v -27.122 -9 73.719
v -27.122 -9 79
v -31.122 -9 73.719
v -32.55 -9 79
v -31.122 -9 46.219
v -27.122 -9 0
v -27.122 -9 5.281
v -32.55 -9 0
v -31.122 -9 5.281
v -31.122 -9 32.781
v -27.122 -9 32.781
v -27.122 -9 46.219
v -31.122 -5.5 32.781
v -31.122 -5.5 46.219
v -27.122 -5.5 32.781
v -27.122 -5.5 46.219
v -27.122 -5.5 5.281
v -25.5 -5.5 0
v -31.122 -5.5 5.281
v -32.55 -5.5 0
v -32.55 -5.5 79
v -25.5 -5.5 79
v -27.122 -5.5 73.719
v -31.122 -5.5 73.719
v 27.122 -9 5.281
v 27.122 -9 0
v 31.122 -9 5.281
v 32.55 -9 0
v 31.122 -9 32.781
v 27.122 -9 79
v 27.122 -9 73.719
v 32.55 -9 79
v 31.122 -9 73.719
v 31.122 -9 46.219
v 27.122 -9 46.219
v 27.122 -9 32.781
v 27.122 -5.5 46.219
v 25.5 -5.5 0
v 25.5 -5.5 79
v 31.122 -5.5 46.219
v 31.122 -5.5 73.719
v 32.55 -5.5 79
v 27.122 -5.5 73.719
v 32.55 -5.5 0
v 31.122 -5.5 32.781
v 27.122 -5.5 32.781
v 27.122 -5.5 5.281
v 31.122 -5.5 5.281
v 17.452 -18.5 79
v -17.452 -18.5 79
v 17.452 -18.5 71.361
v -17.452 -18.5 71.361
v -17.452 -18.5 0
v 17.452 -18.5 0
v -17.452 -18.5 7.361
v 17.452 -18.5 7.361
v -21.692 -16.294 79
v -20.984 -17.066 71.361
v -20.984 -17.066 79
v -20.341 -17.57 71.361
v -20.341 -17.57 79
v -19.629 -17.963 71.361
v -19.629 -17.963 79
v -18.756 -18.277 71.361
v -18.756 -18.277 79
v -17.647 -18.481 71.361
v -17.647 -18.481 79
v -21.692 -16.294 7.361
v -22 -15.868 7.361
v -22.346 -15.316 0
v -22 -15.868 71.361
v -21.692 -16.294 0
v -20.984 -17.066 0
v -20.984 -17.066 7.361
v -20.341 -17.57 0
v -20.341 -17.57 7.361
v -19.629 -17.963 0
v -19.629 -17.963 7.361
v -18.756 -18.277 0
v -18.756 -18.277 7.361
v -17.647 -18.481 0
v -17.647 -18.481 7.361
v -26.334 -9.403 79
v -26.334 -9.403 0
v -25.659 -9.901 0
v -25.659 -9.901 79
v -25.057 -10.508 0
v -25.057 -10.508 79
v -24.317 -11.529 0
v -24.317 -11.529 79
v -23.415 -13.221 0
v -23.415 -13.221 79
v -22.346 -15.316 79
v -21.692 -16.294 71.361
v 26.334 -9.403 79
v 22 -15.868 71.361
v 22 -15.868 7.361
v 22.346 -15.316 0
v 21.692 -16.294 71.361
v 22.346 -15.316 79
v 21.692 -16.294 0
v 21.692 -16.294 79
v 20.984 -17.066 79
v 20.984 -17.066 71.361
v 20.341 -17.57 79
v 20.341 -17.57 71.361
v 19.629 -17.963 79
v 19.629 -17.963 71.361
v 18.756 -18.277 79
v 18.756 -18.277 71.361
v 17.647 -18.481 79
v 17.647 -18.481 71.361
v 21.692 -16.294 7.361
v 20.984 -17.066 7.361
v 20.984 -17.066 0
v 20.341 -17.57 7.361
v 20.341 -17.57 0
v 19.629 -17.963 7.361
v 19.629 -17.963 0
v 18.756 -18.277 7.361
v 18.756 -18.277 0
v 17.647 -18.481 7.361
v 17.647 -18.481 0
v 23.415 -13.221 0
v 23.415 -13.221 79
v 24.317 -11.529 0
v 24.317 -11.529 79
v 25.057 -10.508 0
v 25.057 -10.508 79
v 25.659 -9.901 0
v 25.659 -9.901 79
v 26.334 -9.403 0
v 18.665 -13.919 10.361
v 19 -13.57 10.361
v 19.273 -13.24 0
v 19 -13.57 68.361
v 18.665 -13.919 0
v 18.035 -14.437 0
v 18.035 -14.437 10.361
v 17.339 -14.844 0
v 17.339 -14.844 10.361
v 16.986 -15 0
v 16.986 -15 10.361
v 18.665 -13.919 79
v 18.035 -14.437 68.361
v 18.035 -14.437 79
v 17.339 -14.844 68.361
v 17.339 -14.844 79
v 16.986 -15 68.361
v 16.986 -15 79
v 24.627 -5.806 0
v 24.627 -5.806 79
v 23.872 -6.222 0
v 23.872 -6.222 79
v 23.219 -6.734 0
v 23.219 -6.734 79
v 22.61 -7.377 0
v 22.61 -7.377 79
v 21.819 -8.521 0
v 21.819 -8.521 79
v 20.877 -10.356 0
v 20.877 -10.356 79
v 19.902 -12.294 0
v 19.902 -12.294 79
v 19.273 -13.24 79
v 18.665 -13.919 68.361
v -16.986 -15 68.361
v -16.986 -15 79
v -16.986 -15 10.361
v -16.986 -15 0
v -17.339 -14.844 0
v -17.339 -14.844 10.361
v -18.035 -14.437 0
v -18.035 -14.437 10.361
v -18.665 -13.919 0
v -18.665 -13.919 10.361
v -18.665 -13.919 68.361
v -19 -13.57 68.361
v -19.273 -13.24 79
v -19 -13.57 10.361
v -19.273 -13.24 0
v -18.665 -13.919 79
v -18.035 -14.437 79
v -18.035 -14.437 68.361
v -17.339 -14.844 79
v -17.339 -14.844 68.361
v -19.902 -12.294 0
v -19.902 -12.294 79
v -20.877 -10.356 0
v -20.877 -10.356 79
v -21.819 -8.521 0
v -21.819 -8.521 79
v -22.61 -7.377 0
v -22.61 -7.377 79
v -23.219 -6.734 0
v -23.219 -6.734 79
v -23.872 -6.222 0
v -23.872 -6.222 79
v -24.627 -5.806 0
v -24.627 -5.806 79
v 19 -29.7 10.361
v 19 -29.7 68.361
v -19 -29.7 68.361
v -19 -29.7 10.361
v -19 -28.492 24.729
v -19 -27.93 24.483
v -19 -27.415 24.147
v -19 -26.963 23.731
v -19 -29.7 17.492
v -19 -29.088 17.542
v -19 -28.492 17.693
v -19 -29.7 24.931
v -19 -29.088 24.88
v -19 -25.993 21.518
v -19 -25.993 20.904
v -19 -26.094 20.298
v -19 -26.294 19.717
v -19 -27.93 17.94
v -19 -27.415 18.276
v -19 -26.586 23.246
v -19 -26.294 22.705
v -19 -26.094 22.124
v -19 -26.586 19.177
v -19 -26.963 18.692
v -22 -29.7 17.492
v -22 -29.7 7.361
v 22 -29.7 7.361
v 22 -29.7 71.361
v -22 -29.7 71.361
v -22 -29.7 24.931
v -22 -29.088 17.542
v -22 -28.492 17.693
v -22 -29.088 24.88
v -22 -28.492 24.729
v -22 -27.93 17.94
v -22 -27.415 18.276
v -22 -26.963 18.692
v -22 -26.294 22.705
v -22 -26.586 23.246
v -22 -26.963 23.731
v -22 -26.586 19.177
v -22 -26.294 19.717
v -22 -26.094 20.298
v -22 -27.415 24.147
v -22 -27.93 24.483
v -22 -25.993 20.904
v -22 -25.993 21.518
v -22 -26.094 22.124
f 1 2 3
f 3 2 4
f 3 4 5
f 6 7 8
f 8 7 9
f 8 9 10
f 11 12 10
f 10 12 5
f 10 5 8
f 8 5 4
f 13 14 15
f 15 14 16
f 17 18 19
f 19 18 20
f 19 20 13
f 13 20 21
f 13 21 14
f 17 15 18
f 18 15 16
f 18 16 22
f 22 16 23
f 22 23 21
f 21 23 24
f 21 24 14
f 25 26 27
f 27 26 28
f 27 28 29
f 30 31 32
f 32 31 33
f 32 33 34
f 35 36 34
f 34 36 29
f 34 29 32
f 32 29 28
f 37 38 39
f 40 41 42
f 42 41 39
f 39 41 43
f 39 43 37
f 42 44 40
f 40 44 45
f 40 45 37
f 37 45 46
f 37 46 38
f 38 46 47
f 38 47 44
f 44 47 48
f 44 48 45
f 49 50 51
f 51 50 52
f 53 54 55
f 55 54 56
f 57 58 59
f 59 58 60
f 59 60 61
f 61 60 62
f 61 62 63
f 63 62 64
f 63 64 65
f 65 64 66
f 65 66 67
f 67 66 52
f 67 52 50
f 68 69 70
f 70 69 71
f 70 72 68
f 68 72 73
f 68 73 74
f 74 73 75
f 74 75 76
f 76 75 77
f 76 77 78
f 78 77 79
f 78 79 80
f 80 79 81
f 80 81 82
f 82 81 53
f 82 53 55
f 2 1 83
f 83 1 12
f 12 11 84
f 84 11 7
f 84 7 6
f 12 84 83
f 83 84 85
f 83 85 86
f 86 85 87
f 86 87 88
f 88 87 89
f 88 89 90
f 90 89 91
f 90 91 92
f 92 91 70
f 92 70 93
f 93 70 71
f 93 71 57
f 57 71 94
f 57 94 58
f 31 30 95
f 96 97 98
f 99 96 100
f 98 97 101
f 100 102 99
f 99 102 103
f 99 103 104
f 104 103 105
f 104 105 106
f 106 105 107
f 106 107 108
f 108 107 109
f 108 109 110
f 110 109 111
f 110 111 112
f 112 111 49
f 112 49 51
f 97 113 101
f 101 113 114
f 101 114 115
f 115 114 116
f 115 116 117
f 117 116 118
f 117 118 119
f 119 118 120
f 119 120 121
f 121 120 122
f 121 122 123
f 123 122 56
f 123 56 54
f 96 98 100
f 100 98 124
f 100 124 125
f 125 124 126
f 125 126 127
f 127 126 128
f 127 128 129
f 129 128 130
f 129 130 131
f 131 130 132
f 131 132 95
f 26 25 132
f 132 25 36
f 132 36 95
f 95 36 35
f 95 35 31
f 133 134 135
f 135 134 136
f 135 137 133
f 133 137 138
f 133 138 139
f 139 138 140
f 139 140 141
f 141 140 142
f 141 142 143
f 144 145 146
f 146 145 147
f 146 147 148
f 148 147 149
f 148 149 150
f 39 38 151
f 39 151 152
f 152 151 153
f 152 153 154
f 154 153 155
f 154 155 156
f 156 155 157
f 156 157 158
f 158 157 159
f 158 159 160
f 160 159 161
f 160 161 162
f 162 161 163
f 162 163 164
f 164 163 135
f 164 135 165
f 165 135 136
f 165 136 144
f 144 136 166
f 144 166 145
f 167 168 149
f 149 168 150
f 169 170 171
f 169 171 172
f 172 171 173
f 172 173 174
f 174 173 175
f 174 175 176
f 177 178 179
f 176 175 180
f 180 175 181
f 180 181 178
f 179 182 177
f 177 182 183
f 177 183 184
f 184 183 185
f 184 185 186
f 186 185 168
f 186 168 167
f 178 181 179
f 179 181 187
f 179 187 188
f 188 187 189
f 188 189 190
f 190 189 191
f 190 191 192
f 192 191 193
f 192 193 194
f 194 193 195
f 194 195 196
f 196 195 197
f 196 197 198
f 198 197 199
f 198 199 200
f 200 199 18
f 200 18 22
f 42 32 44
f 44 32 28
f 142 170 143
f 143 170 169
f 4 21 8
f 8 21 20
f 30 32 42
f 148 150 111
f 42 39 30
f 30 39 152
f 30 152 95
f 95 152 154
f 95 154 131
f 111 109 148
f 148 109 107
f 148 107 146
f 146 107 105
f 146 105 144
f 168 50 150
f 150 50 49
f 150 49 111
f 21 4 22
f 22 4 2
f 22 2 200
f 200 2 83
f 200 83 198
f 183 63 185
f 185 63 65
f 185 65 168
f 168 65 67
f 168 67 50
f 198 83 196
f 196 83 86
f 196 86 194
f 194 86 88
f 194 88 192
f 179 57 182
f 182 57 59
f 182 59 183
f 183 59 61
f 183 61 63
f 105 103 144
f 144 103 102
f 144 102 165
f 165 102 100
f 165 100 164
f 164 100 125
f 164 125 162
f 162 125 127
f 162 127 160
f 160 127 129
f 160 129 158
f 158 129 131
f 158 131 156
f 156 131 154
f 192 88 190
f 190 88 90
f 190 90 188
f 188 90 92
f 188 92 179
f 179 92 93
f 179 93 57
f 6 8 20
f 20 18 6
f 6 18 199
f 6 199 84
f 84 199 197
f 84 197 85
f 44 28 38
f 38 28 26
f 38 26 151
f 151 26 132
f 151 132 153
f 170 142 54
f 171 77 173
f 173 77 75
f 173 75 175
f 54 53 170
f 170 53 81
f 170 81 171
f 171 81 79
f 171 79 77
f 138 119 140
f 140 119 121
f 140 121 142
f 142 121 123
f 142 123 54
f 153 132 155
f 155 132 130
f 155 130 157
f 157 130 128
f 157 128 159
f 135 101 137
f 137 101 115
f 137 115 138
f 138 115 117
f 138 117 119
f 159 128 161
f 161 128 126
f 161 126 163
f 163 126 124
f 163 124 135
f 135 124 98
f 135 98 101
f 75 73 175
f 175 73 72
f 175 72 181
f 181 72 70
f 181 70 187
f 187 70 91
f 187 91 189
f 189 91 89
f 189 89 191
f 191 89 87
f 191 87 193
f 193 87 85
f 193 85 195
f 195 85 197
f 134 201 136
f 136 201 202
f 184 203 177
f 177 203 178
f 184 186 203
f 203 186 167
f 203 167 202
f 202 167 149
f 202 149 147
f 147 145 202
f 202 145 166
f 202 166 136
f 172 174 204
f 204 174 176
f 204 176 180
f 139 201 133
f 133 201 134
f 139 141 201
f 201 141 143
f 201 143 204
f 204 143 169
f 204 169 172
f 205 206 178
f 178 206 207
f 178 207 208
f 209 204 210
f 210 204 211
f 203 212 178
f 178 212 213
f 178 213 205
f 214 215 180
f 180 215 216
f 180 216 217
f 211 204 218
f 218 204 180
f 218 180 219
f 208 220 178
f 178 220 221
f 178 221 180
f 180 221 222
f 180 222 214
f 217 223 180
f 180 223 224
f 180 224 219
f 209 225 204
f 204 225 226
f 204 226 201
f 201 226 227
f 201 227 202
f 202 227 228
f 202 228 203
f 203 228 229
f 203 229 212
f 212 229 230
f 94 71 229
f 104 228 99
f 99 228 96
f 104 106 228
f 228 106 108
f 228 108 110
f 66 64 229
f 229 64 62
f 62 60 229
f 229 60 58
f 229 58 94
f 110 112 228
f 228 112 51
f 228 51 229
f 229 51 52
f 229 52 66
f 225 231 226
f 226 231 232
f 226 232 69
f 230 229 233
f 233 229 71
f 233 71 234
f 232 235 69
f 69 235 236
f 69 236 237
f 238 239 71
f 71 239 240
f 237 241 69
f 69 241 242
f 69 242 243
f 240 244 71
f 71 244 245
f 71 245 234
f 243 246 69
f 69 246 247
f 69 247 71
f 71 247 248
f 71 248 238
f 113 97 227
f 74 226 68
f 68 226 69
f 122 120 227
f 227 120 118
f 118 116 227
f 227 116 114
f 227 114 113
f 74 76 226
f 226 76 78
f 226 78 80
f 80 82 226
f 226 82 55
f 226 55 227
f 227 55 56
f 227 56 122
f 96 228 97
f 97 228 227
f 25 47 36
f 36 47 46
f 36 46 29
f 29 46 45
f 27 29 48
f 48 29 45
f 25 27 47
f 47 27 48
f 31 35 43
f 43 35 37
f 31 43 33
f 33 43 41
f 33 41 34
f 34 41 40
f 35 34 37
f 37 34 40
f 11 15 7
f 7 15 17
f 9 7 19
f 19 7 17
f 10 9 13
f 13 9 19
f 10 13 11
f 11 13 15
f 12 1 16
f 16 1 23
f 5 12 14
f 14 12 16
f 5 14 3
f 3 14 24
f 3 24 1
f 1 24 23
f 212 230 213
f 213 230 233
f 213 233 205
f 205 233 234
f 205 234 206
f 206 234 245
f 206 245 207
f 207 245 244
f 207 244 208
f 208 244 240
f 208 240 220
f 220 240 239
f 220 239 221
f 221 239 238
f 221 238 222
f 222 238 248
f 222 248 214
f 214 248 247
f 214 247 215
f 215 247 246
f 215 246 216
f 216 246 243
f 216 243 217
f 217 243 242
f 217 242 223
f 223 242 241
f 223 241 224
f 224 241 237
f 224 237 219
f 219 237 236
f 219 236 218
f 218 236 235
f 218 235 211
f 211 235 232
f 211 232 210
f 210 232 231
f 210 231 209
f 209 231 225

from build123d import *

# Parameters (mm, degrees)
BOSS_EXTRUDE1_DEPTH = 79
SKETCH2_W           = 38
SKETCH2_H           = 58
CUT_EXTRUDE1_DEPTH  = 79
SKETCH2_4_W         = 44
SKETCH2_4_H         = 64
SKETCH2_4_W_2       = 38
SKETCH2_4_H_2       = 58
BOSS_EXTRUDE2_DEPTH = 11.2
BOSS_EXTRUDE3_REACH = 88.426
BOSS_EXTRUDE4_REACH = 88.426
SKETCH3_W           = 4
SKETCH3_H           = 27.5
CUT_EXTRUDE2_DEPTH  = 11.2
SKETCH4_R           = 3.719736595
CUT_EXTRUDE3_DEPTH  = 11.2


with BuildPart() as part:
    # Sketch1 → Boss-Extrude1 (new body)
    with BuildSketch(Plane.XY):
        with BuildLine():
            add(Edge.make_bspline(
                [(-25.5, -5.5), (-23.231190988, -6.092136591), (-20.857183856, -9.763256189), (-19.405733653, -14.032473401), (-16.986240344, -15)],
                knots=[0, 0, 0, 0, 0.466176326, 1, 1, 1, 1], degree=3))
            Line((-25.5, -5.5), (-32.550427966, -5.5))
            Line((-32.550427966, -5.5), (-32.550427966, -9))
            Line((-32.550427966, -9), (-27.122212975, -9))
            add(Edge.make_bspline(
                [(-27.122212975, -9), (-22.380611745, -10.95479786), (-23.823298098, -17.968578536), (-17.452262353, -18.5)],
                knots=[0, 0, 0, 0, 1, 1, 1, 1], degree=3))
            Line((-17.452262353, -18.5), (17.452262353, -18.5))
            add(Edge.make_bspline(
                [(27.122212975, -9), (22.380611745, -10.95479786), (23.823298098, -17.968578536), (17.452262353, -18.5)],
                knots=[0, 0, 0, 0, 1, 1, 1, 1], degree=3))
            Line((27.122212975, -9), (32.550427966, -9))
            Line((32.550427966, -9), (32.550427966, -5.5))
            Line((32.550427966, -5.5), (25.5, -5.5))
            add(Edge.make_bspline(
                [(25.5, -5.5), (23.231190988, -6.092136591), (20.857183856, -9.763256189), (19.405733653, -14.032473401), (16.986240344, -15)],
                knots=[0, 0, 0, 0, 0.466176326, 1, 1, 1, 1], degree=3))
            Line((16.986240344, -15), (-16.986240344, -15))
        make_face()
    extrude(amount=BOSS_EXTRUDE1_DEPTH)

    # Sketch2 → Cut-Extrude1 (cut)
    with BuildSketch(Plane.XZ.offset(18.5)):
        with Locations((0, 39.360513879)):
            Rectangle(SKETCH2_W, SKETCH2_H)
    extrude(amount=-CUT_EXTRUDE1_DEPTH, mode=Mode.SUBTRACT)

    # Sketch2<4> → Boss-Extrude2 (add)
    with BuildSketch(Plane.XZ.offset(18.5)):
        with Locations((0, 39.360513879)):
            Rectangle(SKETCH2_4_W, SKETCH2_4_H)
        with Locations((0, 39.360513879)):
            Rectangle(SKETCH2_4_W_2, SKETCH2_4_H_2, mode=Mode.SUBTRACT)
    extrude(amount=BOSS_EXTRUDE2_DEPTH)

    # Sketch2<8> → Boss-Extrude3 (add, up to next)
    with BuildSketch(Plane.XZ.offset(18.5), mode=Mode.PRIVATE) as boss_extrude3_sk1:
        Polygon((-19, 10.360513879), (-19, 68.360513879), (-17.452262353, 68.360513879), (-17.452262353, 71.360513879), (-22, 71.360513879), (-22, 7.360513879), (-17.452262353, 7.360513879), (-17.452262353, 10.360513879), align=None)
    boss_extrude3_tool1 = extrude(boss_extrude3_sk1.sketch, amount=-BOSS_EXTRUDE3_REACH, mode=Mode.PRIVATE) - part.part
    add(boss_extrude3_tool1.solids().sort_by_distance((-20.395094, -18.5, 39.360514))[0])

    # Sketch2<9> → Boss-Extrude4 (add, up to next)
    with BuildSketch(Plane.XZ.offset(18.5), mode=Mode.PRIVATE) as boss_extrude4_sk1:
        Polygon((17.452262353, 71.360513879), (17.452262353, 68.360513879), (19, 68.360513879), (19, 10.360513879), (17.452262353, 10.360513879), (17.452262353, 7.360513879), (22, 7.360513879), (22, 71.360513879), align=None)
    boss_extrude4_tool1 = extrude(boss_extrude4_sk1.sketch, amount=-BOSS_EXTRUDE4_REACH, mode=Mode.PRIVATE) - part.part
    add(boss_extrude4_tool1.solids().sort_by_distance((20.395094, -18.5, 39.360514))[0])

    # Sketch3 → Cut-Extrude2 (cut)
    with BuildSketch(Plane.XZ.offset(9)):
        with Locations((29.122212975, 59.969493631)):
            Rectangle(SKETCH3_W, SKETCH3_H)
        with Locations((29.122212975, 19.030506369)):
            Rectangle(SKETCH3_W, SKETCH3_H)
    cut_extrude2 = extrude(amount=-CUT_EXTRUDE2_DEPTH, mode=Mode.SUBTRACT)

    # Mirror1: Cut-Extrude2 across plane
    add(cut_extrude2.mirror(Plane(origin=(0, 0, 0), x_dir=(0, 0, 1), z_dir=(1, 0, 0))), mode=Mode.SUBTRACT)

    # Sketch4 → Cut-Extrude3 (cut)
    with BuildSketch(Plane.ZY.offset(22)):
        with Locations((21.211295074, -29.7)):
            Circle(SKETCH4_R)
    extrude(amount=-CUT_EXTRUDE3_DEPTH, mode=Mode.SUBTRACT)


solid = part.part
